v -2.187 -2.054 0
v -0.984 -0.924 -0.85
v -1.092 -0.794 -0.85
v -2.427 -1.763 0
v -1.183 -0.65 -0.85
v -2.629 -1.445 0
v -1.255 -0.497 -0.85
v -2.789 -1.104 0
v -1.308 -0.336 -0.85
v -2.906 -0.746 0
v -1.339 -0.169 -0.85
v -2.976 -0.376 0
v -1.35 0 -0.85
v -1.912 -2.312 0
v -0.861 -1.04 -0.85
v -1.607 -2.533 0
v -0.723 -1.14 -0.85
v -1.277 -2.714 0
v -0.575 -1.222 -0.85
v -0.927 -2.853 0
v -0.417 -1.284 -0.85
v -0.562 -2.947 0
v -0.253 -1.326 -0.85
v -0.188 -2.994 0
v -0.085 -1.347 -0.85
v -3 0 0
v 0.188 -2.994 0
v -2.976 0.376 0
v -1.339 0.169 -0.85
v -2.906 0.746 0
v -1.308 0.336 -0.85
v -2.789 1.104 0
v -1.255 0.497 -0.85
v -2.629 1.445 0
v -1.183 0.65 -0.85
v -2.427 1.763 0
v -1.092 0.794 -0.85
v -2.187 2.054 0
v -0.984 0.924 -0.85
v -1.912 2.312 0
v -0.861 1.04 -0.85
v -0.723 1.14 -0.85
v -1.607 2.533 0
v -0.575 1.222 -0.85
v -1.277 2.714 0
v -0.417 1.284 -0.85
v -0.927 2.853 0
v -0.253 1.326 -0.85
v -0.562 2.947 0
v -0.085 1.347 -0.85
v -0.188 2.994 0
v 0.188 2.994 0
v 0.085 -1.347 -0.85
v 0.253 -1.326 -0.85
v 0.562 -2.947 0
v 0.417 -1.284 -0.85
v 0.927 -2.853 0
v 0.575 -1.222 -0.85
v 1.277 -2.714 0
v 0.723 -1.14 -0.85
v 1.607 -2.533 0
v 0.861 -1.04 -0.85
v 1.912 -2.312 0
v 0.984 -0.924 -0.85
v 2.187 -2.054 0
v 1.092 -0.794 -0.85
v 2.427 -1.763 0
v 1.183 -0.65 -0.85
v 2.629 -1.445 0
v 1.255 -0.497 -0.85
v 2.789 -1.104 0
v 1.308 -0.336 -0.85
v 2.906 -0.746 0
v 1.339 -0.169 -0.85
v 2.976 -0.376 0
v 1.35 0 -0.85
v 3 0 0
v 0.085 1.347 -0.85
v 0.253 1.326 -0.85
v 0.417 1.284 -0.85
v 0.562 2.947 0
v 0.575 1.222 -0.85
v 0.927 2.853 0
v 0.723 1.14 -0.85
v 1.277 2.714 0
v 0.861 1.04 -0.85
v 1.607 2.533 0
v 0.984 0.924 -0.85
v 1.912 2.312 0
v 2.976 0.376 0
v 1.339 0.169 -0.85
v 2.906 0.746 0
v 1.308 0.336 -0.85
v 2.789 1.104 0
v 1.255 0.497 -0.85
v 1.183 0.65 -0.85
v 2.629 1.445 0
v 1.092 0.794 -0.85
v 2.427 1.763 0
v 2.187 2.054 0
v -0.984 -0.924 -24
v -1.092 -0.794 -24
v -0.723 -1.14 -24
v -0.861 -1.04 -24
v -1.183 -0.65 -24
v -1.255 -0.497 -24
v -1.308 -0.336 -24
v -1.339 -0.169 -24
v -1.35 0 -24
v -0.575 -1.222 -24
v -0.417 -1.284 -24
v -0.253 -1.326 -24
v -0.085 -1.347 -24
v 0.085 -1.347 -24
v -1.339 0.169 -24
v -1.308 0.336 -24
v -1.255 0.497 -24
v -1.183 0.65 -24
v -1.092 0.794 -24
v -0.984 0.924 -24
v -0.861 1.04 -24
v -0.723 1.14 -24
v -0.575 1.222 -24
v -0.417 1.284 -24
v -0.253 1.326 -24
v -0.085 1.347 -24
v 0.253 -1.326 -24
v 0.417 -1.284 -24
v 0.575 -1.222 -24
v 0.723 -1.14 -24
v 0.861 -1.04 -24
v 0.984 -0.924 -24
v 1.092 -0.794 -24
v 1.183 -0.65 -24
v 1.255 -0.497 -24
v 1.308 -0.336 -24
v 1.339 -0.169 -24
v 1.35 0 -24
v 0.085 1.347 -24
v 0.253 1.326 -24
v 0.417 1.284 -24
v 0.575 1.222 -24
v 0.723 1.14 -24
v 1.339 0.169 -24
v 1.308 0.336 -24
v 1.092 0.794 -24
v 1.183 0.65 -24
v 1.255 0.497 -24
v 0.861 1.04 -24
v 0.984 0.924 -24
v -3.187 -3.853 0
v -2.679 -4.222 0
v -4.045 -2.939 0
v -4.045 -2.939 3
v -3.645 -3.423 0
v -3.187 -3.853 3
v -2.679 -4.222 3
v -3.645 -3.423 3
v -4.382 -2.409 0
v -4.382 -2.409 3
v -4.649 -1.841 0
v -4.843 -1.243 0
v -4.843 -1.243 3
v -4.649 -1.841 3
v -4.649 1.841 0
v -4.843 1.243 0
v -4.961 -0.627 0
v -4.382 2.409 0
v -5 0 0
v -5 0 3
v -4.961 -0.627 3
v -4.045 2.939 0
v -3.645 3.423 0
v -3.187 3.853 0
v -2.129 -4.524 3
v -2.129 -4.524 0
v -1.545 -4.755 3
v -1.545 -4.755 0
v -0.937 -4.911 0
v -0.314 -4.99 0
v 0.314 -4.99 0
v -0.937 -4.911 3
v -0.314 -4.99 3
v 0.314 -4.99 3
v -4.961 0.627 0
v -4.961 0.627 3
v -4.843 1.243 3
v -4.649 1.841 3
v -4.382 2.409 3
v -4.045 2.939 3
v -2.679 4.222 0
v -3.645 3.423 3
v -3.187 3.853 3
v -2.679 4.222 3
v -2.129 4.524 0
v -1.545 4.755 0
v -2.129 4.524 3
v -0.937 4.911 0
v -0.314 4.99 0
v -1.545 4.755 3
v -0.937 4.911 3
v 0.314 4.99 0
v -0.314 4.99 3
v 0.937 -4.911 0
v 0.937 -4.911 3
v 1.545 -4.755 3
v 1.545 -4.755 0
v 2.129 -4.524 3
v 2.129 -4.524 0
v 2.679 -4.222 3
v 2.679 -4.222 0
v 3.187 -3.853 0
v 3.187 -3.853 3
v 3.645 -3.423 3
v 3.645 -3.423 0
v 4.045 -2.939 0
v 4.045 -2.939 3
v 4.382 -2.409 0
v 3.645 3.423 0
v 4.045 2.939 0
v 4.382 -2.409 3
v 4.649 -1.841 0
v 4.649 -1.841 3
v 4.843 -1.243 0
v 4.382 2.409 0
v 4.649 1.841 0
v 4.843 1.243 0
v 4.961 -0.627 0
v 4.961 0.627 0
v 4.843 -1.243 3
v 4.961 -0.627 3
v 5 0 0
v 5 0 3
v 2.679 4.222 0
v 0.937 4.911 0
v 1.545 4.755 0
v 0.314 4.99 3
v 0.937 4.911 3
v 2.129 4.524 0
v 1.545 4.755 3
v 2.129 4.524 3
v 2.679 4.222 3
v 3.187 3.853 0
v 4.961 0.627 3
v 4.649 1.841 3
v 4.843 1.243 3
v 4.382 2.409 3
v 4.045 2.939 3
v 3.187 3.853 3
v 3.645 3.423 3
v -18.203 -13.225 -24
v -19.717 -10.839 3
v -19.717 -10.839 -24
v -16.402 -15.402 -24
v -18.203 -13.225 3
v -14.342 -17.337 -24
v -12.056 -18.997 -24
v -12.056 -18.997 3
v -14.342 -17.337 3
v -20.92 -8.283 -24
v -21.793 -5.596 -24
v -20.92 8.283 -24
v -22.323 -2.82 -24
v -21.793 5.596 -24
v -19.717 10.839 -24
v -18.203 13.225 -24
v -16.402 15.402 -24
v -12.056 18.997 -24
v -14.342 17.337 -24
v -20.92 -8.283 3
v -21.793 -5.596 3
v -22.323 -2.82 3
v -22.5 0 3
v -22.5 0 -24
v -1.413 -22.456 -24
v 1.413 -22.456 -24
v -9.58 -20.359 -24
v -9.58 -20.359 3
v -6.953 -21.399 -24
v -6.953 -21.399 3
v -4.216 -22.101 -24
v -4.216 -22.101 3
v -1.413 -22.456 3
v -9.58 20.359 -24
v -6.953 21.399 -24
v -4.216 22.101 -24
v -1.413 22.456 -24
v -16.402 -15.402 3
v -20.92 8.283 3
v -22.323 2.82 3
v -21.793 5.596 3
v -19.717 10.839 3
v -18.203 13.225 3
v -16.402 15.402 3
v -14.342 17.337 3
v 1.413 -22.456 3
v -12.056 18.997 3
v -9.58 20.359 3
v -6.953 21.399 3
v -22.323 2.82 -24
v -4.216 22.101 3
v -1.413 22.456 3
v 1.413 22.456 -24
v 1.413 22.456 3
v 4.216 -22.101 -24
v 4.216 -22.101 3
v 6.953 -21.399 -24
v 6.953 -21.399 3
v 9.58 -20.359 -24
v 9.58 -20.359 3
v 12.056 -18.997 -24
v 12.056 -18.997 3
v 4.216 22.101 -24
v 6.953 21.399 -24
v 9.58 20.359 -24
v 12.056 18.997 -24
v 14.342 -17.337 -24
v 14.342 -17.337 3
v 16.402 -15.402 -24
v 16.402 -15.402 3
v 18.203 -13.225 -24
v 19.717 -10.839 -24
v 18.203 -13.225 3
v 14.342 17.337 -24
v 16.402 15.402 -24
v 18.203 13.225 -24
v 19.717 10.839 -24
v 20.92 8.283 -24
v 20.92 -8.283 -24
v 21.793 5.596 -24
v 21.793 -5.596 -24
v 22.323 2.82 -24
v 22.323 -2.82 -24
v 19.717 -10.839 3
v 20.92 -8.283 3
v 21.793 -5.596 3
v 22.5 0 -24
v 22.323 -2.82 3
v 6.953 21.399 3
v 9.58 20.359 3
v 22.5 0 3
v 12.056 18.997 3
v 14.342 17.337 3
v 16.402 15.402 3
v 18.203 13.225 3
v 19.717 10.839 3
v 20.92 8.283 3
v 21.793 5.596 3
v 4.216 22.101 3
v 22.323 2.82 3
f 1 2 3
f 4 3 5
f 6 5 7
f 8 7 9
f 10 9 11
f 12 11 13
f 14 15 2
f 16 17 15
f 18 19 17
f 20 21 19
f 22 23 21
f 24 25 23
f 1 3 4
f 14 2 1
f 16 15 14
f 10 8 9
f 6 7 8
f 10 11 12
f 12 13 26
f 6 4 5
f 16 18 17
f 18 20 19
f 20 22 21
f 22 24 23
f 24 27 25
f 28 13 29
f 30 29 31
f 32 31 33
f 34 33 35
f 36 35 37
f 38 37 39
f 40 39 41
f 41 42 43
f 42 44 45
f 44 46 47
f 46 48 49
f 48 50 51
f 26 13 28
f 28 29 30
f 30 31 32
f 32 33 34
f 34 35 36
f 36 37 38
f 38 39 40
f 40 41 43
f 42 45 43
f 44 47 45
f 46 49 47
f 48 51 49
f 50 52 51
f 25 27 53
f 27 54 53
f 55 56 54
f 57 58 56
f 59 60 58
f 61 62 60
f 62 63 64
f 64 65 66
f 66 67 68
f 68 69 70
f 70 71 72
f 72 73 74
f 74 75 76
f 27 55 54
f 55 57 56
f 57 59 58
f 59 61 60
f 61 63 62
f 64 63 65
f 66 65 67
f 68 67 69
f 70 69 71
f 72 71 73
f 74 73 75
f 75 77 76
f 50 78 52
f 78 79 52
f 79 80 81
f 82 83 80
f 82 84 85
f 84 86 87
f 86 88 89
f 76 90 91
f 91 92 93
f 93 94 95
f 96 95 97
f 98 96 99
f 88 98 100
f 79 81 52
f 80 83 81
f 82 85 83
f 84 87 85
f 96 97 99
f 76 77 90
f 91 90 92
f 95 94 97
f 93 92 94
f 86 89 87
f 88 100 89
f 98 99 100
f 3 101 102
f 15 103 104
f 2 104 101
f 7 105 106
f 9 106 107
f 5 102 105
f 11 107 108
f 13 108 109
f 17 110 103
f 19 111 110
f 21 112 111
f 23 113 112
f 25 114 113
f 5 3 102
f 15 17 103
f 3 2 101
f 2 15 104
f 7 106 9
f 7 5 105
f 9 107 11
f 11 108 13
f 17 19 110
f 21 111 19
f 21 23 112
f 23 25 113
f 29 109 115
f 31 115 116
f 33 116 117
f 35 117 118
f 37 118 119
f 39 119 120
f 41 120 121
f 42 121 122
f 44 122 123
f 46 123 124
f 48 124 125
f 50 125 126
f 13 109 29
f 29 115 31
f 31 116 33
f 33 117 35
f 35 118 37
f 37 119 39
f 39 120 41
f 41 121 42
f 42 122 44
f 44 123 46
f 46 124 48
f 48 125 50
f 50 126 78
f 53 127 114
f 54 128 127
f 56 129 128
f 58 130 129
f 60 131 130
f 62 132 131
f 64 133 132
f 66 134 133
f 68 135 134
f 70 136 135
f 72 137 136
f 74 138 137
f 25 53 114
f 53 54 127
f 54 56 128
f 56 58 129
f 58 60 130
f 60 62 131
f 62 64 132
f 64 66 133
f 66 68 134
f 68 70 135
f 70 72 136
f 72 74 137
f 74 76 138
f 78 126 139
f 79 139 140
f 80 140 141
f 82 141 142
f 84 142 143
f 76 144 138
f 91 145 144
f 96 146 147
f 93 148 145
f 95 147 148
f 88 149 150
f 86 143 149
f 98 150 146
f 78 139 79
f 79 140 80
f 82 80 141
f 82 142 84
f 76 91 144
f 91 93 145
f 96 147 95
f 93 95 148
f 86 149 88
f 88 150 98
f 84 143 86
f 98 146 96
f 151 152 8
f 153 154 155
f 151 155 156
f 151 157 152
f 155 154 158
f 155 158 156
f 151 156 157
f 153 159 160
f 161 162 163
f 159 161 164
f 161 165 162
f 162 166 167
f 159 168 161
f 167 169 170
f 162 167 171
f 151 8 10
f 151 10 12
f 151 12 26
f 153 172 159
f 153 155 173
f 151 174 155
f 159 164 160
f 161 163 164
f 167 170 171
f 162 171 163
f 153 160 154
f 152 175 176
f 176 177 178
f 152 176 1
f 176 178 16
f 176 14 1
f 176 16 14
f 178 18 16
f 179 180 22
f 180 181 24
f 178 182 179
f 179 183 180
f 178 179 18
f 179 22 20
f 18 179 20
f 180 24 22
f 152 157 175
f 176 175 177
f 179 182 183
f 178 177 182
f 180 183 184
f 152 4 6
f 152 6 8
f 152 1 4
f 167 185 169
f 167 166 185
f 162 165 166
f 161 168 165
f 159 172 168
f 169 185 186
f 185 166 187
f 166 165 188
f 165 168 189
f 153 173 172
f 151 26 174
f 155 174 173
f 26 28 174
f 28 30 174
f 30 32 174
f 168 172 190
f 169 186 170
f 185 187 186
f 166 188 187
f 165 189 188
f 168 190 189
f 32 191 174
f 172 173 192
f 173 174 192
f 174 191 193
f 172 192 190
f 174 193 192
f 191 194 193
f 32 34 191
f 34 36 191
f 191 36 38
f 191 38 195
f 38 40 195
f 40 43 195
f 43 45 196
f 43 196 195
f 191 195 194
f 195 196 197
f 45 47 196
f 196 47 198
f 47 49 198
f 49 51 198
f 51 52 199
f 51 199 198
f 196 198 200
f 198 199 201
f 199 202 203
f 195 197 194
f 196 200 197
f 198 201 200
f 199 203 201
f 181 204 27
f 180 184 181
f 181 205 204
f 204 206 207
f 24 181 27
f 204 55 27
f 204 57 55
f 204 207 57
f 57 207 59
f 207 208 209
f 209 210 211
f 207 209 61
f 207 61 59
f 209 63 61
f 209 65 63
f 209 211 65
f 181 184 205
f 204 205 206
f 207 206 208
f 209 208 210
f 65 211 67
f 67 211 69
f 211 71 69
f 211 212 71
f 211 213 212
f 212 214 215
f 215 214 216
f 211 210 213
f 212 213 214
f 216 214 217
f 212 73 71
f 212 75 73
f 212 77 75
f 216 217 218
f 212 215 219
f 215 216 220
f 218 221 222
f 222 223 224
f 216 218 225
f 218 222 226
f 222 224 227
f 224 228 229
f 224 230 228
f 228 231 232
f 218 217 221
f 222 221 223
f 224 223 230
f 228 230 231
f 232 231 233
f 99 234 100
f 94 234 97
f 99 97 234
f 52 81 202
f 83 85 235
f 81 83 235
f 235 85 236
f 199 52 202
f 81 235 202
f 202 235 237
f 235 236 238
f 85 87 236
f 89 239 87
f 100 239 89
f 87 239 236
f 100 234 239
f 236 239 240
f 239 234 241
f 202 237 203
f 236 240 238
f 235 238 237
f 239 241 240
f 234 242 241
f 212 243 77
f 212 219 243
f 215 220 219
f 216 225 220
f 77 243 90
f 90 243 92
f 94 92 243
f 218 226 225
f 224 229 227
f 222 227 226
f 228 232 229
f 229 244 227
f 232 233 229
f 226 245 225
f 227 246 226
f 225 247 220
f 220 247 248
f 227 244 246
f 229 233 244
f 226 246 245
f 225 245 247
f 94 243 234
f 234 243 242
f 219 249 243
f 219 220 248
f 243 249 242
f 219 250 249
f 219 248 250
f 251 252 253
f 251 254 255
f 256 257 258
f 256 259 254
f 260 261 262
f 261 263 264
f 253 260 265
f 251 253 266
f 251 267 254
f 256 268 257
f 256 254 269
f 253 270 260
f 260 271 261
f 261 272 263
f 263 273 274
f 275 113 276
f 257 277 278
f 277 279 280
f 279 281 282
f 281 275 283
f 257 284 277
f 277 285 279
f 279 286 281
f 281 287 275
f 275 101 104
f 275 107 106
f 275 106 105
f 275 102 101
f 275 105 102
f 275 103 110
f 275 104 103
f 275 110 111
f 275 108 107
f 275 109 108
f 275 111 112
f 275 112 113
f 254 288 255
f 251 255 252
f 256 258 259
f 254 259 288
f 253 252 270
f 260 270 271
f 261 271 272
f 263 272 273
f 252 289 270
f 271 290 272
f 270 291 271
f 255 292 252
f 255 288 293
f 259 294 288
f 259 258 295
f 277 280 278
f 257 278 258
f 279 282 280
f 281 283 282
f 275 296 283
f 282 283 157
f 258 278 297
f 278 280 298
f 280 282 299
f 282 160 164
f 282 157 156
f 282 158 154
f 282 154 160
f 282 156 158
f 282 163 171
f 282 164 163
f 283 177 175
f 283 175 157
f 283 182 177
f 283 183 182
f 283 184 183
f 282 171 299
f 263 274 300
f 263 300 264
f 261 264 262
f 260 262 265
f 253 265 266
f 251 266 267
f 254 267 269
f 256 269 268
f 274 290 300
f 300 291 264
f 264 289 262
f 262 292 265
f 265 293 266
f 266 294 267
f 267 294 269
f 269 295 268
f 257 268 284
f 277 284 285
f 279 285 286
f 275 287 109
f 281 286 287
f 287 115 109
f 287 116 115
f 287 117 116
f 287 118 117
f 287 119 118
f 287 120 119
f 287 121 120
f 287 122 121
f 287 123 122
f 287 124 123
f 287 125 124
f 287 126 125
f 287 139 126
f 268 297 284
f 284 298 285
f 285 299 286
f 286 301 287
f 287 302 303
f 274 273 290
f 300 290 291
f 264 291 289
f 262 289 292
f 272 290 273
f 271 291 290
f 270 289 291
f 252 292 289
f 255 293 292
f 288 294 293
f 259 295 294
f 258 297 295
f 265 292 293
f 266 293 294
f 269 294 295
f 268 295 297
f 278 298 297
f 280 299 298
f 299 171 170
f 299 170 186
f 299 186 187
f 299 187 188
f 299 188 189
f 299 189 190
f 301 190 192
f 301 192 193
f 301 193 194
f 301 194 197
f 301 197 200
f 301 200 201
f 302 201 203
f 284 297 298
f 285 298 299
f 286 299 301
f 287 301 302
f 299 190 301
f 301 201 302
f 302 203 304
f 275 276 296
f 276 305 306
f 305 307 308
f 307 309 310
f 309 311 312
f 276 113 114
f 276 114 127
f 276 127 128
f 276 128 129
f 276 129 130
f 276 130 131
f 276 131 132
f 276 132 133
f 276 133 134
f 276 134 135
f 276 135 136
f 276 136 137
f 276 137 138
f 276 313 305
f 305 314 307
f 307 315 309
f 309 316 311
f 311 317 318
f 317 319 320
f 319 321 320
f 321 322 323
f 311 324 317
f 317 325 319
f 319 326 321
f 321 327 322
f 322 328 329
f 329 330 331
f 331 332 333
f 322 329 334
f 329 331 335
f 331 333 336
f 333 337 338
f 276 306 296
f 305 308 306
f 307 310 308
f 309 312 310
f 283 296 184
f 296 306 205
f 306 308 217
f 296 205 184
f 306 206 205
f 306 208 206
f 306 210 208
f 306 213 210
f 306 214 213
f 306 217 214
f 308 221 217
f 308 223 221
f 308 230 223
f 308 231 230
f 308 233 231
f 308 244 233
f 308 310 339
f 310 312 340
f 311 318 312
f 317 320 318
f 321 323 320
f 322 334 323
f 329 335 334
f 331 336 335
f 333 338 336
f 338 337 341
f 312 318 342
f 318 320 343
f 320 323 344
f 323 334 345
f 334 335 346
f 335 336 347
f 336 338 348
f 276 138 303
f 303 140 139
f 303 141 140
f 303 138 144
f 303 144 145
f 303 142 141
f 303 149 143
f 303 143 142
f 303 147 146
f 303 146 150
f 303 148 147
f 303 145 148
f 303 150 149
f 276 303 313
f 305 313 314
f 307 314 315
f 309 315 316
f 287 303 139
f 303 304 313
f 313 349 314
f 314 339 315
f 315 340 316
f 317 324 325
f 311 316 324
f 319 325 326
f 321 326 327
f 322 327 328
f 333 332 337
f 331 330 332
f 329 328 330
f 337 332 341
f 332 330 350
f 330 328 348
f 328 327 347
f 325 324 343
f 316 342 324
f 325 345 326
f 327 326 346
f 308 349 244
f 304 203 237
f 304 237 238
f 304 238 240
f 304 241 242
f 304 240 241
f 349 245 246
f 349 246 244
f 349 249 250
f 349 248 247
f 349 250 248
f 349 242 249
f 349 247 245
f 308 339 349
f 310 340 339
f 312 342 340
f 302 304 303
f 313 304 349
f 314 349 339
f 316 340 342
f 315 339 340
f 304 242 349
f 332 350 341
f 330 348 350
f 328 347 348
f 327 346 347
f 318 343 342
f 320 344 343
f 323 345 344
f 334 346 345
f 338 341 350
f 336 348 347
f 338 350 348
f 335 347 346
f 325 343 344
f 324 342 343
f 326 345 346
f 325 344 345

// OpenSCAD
$fn = 50;

difference() {
	union() {
		translate(v = [0, 0, -24.0]) {
			cylinder(h = 27, r = 22.5);
		}
	}
	union() {
		translate(v = [0, 0, 0]) {
			rotate(a = [0, 0, 0]) {
				difference() {
					union() {
						translate(v = [0, 0, -27.0]) {
							cylinder(h = 27, r = 1.0);
						}
						translate(v = [0, 0, -0.85]) {
							cylinder(h = 0.85, r1 = 1.35, r2 = 3.0);
						}
						translate(v = [0, 0, -27.0]) {
							cylinder(h = 27, r = 1.35);
						}
						translate(v = [0, 0, -27.0]) {
							cylinder(h = 27, r = 1.0);
						}
					}
					union();
				}
			}
		}
		#cylinder(h = 3, r = 5.0);
	}
}
